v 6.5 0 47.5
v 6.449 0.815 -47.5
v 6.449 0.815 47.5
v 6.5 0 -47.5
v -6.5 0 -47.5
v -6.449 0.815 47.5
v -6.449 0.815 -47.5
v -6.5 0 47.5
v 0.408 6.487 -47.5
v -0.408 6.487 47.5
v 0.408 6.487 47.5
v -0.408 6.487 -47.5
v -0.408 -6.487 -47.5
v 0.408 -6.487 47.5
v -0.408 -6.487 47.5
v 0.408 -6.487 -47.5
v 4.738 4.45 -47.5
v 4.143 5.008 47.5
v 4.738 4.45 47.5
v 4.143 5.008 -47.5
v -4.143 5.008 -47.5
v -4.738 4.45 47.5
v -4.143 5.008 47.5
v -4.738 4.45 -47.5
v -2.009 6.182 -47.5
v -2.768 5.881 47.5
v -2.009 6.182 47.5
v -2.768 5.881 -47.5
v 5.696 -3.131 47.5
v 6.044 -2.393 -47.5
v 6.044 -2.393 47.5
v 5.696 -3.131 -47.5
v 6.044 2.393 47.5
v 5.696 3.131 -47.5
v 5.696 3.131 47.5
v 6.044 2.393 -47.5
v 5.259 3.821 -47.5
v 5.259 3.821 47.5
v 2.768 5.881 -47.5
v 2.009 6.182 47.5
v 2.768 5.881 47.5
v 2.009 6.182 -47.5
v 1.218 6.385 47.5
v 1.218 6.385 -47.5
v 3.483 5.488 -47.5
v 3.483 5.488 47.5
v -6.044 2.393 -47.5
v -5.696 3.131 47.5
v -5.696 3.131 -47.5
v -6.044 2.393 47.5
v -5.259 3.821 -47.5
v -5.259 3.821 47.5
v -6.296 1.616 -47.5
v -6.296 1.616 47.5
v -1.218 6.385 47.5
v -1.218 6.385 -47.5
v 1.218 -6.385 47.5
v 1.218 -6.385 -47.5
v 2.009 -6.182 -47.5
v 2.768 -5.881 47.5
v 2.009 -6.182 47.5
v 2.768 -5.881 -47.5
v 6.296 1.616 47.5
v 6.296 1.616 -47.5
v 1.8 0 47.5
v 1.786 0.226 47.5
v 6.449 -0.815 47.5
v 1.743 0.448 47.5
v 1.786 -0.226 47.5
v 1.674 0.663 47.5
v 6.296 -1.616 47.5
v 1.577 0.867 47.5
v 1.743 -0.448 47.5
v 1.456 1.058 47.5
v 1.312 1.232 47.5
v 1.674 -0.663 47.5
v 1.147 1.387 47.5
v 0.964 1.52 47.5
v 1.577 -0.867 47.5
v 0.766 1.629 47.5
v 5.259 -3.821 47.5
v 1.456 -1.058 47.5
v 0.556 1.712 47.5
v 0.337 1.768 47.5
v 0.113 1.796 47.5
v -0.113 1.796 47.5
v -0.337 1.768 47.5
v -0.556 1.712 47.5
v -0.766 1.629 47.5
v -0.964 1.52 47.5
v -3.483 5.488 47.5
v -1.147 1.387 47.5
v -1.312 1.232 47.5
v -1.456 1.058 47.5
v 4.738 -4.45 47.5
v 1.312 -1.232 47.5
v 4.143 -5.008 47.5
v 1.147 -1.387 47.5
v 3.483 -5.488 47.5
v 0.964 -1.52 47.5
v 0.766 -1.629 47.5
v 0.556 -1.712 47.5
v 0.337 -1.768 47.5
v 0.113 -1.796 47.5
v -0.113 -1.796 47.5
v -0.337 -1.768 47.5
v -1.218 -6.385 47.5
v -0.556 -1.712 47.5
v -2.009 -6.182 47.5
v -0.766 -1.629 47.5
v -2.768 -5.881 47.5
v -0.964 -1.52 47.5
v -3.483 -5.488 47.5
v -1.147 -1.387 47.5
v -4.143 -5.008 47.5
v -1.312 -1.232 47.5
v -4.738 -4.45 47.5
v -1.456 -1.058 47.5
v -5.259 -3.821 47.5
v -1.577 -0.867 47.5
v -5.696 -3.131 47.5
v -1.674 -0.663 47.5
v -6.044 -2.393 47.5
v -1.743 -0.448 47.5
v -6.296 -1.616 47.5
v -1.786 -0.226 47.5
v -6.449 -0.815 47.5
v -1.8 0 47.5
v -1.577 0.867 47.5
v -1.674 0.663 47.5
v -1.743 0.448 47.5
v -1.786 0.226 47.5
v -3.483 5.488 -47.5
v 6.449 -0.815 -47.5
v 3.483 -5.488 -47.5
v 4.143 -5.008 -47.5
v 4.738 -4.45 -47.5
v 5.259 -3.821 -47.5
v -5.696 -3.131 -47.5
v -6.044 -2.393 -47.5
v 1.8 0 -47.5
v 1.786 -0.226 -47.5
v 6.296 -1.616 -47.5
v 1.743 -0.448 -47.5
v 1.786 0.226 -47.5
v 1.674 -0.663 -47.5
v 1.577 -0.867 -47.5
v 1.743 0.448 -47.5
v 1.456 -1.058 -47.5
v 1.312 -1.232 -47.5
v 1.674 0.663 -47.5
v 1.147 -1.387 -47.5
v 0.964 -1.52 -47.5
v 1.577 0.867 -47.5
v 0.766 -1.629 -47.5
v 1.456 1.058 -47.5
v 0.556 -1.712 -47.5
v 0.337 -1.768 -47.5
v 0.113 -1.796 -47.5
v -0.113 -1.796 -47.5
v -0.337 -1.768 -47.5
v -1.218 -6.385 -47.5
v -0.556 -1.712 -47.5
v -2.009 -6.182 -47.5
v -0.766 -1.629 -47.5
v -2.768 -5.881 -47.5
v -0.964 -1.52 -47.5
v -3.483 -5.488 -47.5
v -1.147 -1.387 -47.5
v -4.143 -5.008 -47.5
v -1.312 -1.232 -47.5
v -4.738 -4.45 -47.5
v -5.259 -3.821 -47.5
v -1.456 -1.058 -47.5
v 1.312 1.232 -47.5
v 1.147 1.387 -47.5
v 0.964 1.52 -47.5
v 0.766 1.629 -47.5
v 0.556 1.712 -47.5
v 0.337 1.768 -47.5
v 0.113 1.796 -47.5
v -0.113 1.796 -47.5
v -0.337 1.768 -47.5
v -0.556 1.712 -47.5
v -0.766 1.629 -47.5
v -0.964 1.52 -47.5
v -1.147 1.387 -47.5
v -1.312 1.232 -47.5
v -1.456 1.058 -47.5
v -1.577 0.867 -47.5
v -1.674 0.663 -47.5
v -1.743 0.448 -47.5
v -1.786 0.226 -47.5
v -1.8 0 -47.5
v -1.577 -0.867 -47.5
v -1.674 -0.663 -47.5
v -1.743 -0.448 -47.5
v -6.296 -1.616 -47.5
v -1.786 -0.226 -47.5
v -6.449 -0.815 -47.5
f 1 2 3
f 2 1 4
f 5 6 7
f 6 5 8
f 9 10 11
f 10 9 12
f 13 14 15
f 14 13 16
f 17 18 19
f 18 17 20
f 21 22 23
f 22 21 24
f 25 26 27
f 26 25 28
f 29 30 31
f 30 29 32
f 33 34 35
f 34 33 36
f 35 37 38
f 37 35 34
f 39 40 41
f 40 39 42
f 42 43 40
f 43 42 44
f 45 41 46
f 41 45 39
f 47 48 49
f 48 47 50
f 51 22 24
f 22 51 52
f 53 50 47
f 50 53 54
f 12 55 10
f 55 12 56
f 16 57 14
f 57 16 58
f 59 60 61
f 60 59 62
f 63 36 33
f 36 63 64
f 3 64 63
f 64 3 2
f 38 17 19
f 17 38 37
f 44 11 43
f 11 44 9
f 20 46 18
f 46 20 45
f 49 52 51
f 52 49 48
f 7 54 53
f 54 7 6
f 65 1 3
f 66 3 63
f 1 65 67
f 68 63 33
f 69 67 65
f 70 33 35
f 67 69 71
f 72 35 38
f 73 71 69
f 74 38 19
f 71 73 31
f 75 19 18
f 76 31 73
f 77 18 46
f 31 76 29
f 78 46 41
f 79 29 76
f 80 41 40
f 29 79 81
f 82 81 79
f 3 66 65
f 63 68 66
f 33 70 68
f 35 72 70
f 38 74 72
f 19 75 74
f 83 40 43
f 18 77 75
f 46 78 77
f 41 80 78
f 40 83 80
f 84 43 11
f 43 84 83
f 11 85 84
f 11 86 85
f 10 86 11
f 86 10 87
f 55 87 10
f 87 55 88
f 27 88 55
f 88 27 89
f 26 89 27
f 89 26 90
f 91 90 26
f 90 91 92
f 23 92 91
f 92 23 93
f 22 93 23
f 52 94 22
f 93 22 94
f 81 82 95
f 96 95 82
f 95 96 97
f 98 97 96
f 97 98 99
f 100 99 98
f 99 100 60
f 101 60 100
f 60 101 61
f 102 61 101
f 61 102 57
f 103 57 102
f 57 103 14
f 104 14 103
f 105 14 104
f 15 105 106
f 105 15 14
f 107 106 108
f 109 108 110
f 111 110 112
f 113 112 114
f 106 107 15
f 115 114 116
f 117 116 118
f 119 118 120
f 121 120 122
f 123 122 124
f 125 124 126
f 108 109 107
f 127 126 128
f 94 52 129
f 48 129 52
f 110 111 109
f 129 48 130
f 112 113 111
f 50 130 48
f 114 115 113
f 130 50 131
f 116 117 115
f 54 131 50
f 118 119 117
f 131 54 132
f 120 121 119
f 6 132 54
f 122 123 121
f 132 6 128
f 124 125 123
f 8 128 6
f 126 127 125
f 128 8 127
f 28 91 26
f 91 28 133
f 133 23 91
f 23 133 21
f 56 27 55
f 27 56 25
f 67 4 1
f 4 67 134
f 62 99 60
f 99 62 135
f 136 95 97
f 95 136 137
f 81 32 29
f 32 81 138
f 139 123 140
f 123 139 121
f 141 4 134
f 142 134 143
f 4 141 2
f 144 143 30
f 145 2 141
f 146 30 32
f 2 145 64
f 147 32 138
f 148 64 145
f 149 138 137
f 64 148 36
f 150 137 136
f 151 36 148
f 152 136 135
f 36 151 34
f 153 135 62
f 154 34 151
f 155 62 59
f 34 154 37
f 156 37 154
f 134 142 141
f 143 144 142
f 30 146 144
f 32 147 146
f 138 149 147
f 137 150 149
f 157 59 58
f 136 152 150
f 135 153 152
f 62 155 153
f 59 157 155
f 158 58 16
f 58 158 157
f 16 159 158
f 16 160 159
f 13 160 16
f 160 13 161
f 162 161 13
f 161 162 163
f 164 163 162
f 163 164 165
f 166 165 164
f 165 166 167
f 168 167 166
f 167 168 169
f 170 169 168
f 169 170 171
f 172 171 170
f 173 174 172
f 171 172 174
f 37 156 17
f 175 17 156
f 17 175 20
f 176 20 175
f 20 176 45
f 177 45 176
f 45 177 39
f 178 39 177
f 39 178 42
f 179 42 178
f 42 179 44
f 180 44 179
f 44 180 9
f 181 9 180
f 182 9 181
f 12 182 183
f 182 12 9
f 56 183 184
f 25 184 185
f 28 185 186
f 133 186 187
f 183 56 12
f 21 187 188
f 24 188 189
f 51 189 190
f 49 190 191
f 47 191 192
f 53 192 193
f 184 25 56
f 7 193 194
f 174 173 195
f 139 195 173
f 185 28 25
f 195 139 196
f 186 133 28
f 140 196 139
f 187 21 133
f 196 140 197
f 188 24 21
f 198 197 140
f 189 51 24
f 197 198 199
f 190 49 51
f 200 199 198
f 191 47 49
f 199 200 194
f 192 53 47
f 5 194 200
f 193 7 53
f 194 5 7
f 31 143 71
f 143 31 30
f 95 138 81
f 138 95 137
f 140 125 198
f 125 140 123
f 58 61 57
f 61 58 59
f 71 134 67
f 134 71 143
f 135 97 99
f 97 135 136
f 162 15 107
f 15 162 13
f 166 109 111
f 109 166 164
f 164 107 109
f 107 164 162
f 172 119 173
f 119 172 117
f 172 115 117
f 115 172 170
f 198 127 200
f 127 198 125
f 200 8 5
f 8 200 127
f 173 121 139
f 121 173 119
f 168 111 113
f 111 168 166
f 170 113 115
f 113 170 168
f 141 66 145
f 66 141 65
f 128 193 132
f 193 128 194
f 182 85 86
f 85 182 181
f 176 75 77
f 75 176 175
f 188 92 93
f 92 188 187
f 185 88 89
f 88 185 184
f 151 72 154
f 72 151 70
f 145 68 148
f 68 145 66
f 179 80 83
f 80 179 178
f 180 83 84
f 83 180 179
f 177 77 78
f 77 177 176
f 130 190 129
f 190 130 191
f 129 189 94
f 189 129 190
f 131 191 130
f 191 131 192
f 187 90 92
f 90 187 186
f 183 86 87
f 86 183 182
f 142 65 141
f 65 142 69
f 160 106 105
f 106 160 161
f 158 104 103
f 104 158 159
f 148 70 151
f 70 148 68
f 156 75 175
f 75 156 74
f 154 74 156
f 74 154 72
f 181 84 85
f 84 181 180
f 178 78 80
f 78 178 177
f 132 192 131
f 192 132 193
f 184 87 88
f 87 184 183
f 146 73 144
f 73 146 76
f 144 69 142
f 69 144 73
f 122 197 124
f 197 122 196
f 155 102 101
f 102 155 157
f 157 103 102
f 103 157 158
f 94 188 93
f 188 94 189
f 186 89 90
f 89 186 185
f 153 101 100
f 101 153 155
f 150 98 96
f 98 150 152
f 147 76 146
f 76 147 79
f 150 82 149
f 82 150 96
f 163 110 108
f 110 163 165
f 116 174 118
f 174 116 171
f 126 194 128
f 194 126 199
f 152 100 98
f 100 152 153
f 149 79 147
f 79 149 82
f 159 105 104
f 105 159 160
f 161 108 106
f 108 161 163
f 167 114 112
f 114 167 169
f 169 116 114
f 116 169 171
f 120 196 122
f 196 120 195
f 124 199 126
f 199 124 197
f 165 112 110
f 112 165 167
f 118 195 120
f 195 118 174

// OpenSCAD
$fn = 50;


difference() {
	union() {
		translate(v = [0, 0, -47.5000000000]) {
			cylinder(h = 95, r = 6.5000000000);
		}
	}
	union() {
		translate(v = [0, 0, -100.0000000000]) {
			cylinder(h = 200, r = 1.8000000000);
		}
	}
}
